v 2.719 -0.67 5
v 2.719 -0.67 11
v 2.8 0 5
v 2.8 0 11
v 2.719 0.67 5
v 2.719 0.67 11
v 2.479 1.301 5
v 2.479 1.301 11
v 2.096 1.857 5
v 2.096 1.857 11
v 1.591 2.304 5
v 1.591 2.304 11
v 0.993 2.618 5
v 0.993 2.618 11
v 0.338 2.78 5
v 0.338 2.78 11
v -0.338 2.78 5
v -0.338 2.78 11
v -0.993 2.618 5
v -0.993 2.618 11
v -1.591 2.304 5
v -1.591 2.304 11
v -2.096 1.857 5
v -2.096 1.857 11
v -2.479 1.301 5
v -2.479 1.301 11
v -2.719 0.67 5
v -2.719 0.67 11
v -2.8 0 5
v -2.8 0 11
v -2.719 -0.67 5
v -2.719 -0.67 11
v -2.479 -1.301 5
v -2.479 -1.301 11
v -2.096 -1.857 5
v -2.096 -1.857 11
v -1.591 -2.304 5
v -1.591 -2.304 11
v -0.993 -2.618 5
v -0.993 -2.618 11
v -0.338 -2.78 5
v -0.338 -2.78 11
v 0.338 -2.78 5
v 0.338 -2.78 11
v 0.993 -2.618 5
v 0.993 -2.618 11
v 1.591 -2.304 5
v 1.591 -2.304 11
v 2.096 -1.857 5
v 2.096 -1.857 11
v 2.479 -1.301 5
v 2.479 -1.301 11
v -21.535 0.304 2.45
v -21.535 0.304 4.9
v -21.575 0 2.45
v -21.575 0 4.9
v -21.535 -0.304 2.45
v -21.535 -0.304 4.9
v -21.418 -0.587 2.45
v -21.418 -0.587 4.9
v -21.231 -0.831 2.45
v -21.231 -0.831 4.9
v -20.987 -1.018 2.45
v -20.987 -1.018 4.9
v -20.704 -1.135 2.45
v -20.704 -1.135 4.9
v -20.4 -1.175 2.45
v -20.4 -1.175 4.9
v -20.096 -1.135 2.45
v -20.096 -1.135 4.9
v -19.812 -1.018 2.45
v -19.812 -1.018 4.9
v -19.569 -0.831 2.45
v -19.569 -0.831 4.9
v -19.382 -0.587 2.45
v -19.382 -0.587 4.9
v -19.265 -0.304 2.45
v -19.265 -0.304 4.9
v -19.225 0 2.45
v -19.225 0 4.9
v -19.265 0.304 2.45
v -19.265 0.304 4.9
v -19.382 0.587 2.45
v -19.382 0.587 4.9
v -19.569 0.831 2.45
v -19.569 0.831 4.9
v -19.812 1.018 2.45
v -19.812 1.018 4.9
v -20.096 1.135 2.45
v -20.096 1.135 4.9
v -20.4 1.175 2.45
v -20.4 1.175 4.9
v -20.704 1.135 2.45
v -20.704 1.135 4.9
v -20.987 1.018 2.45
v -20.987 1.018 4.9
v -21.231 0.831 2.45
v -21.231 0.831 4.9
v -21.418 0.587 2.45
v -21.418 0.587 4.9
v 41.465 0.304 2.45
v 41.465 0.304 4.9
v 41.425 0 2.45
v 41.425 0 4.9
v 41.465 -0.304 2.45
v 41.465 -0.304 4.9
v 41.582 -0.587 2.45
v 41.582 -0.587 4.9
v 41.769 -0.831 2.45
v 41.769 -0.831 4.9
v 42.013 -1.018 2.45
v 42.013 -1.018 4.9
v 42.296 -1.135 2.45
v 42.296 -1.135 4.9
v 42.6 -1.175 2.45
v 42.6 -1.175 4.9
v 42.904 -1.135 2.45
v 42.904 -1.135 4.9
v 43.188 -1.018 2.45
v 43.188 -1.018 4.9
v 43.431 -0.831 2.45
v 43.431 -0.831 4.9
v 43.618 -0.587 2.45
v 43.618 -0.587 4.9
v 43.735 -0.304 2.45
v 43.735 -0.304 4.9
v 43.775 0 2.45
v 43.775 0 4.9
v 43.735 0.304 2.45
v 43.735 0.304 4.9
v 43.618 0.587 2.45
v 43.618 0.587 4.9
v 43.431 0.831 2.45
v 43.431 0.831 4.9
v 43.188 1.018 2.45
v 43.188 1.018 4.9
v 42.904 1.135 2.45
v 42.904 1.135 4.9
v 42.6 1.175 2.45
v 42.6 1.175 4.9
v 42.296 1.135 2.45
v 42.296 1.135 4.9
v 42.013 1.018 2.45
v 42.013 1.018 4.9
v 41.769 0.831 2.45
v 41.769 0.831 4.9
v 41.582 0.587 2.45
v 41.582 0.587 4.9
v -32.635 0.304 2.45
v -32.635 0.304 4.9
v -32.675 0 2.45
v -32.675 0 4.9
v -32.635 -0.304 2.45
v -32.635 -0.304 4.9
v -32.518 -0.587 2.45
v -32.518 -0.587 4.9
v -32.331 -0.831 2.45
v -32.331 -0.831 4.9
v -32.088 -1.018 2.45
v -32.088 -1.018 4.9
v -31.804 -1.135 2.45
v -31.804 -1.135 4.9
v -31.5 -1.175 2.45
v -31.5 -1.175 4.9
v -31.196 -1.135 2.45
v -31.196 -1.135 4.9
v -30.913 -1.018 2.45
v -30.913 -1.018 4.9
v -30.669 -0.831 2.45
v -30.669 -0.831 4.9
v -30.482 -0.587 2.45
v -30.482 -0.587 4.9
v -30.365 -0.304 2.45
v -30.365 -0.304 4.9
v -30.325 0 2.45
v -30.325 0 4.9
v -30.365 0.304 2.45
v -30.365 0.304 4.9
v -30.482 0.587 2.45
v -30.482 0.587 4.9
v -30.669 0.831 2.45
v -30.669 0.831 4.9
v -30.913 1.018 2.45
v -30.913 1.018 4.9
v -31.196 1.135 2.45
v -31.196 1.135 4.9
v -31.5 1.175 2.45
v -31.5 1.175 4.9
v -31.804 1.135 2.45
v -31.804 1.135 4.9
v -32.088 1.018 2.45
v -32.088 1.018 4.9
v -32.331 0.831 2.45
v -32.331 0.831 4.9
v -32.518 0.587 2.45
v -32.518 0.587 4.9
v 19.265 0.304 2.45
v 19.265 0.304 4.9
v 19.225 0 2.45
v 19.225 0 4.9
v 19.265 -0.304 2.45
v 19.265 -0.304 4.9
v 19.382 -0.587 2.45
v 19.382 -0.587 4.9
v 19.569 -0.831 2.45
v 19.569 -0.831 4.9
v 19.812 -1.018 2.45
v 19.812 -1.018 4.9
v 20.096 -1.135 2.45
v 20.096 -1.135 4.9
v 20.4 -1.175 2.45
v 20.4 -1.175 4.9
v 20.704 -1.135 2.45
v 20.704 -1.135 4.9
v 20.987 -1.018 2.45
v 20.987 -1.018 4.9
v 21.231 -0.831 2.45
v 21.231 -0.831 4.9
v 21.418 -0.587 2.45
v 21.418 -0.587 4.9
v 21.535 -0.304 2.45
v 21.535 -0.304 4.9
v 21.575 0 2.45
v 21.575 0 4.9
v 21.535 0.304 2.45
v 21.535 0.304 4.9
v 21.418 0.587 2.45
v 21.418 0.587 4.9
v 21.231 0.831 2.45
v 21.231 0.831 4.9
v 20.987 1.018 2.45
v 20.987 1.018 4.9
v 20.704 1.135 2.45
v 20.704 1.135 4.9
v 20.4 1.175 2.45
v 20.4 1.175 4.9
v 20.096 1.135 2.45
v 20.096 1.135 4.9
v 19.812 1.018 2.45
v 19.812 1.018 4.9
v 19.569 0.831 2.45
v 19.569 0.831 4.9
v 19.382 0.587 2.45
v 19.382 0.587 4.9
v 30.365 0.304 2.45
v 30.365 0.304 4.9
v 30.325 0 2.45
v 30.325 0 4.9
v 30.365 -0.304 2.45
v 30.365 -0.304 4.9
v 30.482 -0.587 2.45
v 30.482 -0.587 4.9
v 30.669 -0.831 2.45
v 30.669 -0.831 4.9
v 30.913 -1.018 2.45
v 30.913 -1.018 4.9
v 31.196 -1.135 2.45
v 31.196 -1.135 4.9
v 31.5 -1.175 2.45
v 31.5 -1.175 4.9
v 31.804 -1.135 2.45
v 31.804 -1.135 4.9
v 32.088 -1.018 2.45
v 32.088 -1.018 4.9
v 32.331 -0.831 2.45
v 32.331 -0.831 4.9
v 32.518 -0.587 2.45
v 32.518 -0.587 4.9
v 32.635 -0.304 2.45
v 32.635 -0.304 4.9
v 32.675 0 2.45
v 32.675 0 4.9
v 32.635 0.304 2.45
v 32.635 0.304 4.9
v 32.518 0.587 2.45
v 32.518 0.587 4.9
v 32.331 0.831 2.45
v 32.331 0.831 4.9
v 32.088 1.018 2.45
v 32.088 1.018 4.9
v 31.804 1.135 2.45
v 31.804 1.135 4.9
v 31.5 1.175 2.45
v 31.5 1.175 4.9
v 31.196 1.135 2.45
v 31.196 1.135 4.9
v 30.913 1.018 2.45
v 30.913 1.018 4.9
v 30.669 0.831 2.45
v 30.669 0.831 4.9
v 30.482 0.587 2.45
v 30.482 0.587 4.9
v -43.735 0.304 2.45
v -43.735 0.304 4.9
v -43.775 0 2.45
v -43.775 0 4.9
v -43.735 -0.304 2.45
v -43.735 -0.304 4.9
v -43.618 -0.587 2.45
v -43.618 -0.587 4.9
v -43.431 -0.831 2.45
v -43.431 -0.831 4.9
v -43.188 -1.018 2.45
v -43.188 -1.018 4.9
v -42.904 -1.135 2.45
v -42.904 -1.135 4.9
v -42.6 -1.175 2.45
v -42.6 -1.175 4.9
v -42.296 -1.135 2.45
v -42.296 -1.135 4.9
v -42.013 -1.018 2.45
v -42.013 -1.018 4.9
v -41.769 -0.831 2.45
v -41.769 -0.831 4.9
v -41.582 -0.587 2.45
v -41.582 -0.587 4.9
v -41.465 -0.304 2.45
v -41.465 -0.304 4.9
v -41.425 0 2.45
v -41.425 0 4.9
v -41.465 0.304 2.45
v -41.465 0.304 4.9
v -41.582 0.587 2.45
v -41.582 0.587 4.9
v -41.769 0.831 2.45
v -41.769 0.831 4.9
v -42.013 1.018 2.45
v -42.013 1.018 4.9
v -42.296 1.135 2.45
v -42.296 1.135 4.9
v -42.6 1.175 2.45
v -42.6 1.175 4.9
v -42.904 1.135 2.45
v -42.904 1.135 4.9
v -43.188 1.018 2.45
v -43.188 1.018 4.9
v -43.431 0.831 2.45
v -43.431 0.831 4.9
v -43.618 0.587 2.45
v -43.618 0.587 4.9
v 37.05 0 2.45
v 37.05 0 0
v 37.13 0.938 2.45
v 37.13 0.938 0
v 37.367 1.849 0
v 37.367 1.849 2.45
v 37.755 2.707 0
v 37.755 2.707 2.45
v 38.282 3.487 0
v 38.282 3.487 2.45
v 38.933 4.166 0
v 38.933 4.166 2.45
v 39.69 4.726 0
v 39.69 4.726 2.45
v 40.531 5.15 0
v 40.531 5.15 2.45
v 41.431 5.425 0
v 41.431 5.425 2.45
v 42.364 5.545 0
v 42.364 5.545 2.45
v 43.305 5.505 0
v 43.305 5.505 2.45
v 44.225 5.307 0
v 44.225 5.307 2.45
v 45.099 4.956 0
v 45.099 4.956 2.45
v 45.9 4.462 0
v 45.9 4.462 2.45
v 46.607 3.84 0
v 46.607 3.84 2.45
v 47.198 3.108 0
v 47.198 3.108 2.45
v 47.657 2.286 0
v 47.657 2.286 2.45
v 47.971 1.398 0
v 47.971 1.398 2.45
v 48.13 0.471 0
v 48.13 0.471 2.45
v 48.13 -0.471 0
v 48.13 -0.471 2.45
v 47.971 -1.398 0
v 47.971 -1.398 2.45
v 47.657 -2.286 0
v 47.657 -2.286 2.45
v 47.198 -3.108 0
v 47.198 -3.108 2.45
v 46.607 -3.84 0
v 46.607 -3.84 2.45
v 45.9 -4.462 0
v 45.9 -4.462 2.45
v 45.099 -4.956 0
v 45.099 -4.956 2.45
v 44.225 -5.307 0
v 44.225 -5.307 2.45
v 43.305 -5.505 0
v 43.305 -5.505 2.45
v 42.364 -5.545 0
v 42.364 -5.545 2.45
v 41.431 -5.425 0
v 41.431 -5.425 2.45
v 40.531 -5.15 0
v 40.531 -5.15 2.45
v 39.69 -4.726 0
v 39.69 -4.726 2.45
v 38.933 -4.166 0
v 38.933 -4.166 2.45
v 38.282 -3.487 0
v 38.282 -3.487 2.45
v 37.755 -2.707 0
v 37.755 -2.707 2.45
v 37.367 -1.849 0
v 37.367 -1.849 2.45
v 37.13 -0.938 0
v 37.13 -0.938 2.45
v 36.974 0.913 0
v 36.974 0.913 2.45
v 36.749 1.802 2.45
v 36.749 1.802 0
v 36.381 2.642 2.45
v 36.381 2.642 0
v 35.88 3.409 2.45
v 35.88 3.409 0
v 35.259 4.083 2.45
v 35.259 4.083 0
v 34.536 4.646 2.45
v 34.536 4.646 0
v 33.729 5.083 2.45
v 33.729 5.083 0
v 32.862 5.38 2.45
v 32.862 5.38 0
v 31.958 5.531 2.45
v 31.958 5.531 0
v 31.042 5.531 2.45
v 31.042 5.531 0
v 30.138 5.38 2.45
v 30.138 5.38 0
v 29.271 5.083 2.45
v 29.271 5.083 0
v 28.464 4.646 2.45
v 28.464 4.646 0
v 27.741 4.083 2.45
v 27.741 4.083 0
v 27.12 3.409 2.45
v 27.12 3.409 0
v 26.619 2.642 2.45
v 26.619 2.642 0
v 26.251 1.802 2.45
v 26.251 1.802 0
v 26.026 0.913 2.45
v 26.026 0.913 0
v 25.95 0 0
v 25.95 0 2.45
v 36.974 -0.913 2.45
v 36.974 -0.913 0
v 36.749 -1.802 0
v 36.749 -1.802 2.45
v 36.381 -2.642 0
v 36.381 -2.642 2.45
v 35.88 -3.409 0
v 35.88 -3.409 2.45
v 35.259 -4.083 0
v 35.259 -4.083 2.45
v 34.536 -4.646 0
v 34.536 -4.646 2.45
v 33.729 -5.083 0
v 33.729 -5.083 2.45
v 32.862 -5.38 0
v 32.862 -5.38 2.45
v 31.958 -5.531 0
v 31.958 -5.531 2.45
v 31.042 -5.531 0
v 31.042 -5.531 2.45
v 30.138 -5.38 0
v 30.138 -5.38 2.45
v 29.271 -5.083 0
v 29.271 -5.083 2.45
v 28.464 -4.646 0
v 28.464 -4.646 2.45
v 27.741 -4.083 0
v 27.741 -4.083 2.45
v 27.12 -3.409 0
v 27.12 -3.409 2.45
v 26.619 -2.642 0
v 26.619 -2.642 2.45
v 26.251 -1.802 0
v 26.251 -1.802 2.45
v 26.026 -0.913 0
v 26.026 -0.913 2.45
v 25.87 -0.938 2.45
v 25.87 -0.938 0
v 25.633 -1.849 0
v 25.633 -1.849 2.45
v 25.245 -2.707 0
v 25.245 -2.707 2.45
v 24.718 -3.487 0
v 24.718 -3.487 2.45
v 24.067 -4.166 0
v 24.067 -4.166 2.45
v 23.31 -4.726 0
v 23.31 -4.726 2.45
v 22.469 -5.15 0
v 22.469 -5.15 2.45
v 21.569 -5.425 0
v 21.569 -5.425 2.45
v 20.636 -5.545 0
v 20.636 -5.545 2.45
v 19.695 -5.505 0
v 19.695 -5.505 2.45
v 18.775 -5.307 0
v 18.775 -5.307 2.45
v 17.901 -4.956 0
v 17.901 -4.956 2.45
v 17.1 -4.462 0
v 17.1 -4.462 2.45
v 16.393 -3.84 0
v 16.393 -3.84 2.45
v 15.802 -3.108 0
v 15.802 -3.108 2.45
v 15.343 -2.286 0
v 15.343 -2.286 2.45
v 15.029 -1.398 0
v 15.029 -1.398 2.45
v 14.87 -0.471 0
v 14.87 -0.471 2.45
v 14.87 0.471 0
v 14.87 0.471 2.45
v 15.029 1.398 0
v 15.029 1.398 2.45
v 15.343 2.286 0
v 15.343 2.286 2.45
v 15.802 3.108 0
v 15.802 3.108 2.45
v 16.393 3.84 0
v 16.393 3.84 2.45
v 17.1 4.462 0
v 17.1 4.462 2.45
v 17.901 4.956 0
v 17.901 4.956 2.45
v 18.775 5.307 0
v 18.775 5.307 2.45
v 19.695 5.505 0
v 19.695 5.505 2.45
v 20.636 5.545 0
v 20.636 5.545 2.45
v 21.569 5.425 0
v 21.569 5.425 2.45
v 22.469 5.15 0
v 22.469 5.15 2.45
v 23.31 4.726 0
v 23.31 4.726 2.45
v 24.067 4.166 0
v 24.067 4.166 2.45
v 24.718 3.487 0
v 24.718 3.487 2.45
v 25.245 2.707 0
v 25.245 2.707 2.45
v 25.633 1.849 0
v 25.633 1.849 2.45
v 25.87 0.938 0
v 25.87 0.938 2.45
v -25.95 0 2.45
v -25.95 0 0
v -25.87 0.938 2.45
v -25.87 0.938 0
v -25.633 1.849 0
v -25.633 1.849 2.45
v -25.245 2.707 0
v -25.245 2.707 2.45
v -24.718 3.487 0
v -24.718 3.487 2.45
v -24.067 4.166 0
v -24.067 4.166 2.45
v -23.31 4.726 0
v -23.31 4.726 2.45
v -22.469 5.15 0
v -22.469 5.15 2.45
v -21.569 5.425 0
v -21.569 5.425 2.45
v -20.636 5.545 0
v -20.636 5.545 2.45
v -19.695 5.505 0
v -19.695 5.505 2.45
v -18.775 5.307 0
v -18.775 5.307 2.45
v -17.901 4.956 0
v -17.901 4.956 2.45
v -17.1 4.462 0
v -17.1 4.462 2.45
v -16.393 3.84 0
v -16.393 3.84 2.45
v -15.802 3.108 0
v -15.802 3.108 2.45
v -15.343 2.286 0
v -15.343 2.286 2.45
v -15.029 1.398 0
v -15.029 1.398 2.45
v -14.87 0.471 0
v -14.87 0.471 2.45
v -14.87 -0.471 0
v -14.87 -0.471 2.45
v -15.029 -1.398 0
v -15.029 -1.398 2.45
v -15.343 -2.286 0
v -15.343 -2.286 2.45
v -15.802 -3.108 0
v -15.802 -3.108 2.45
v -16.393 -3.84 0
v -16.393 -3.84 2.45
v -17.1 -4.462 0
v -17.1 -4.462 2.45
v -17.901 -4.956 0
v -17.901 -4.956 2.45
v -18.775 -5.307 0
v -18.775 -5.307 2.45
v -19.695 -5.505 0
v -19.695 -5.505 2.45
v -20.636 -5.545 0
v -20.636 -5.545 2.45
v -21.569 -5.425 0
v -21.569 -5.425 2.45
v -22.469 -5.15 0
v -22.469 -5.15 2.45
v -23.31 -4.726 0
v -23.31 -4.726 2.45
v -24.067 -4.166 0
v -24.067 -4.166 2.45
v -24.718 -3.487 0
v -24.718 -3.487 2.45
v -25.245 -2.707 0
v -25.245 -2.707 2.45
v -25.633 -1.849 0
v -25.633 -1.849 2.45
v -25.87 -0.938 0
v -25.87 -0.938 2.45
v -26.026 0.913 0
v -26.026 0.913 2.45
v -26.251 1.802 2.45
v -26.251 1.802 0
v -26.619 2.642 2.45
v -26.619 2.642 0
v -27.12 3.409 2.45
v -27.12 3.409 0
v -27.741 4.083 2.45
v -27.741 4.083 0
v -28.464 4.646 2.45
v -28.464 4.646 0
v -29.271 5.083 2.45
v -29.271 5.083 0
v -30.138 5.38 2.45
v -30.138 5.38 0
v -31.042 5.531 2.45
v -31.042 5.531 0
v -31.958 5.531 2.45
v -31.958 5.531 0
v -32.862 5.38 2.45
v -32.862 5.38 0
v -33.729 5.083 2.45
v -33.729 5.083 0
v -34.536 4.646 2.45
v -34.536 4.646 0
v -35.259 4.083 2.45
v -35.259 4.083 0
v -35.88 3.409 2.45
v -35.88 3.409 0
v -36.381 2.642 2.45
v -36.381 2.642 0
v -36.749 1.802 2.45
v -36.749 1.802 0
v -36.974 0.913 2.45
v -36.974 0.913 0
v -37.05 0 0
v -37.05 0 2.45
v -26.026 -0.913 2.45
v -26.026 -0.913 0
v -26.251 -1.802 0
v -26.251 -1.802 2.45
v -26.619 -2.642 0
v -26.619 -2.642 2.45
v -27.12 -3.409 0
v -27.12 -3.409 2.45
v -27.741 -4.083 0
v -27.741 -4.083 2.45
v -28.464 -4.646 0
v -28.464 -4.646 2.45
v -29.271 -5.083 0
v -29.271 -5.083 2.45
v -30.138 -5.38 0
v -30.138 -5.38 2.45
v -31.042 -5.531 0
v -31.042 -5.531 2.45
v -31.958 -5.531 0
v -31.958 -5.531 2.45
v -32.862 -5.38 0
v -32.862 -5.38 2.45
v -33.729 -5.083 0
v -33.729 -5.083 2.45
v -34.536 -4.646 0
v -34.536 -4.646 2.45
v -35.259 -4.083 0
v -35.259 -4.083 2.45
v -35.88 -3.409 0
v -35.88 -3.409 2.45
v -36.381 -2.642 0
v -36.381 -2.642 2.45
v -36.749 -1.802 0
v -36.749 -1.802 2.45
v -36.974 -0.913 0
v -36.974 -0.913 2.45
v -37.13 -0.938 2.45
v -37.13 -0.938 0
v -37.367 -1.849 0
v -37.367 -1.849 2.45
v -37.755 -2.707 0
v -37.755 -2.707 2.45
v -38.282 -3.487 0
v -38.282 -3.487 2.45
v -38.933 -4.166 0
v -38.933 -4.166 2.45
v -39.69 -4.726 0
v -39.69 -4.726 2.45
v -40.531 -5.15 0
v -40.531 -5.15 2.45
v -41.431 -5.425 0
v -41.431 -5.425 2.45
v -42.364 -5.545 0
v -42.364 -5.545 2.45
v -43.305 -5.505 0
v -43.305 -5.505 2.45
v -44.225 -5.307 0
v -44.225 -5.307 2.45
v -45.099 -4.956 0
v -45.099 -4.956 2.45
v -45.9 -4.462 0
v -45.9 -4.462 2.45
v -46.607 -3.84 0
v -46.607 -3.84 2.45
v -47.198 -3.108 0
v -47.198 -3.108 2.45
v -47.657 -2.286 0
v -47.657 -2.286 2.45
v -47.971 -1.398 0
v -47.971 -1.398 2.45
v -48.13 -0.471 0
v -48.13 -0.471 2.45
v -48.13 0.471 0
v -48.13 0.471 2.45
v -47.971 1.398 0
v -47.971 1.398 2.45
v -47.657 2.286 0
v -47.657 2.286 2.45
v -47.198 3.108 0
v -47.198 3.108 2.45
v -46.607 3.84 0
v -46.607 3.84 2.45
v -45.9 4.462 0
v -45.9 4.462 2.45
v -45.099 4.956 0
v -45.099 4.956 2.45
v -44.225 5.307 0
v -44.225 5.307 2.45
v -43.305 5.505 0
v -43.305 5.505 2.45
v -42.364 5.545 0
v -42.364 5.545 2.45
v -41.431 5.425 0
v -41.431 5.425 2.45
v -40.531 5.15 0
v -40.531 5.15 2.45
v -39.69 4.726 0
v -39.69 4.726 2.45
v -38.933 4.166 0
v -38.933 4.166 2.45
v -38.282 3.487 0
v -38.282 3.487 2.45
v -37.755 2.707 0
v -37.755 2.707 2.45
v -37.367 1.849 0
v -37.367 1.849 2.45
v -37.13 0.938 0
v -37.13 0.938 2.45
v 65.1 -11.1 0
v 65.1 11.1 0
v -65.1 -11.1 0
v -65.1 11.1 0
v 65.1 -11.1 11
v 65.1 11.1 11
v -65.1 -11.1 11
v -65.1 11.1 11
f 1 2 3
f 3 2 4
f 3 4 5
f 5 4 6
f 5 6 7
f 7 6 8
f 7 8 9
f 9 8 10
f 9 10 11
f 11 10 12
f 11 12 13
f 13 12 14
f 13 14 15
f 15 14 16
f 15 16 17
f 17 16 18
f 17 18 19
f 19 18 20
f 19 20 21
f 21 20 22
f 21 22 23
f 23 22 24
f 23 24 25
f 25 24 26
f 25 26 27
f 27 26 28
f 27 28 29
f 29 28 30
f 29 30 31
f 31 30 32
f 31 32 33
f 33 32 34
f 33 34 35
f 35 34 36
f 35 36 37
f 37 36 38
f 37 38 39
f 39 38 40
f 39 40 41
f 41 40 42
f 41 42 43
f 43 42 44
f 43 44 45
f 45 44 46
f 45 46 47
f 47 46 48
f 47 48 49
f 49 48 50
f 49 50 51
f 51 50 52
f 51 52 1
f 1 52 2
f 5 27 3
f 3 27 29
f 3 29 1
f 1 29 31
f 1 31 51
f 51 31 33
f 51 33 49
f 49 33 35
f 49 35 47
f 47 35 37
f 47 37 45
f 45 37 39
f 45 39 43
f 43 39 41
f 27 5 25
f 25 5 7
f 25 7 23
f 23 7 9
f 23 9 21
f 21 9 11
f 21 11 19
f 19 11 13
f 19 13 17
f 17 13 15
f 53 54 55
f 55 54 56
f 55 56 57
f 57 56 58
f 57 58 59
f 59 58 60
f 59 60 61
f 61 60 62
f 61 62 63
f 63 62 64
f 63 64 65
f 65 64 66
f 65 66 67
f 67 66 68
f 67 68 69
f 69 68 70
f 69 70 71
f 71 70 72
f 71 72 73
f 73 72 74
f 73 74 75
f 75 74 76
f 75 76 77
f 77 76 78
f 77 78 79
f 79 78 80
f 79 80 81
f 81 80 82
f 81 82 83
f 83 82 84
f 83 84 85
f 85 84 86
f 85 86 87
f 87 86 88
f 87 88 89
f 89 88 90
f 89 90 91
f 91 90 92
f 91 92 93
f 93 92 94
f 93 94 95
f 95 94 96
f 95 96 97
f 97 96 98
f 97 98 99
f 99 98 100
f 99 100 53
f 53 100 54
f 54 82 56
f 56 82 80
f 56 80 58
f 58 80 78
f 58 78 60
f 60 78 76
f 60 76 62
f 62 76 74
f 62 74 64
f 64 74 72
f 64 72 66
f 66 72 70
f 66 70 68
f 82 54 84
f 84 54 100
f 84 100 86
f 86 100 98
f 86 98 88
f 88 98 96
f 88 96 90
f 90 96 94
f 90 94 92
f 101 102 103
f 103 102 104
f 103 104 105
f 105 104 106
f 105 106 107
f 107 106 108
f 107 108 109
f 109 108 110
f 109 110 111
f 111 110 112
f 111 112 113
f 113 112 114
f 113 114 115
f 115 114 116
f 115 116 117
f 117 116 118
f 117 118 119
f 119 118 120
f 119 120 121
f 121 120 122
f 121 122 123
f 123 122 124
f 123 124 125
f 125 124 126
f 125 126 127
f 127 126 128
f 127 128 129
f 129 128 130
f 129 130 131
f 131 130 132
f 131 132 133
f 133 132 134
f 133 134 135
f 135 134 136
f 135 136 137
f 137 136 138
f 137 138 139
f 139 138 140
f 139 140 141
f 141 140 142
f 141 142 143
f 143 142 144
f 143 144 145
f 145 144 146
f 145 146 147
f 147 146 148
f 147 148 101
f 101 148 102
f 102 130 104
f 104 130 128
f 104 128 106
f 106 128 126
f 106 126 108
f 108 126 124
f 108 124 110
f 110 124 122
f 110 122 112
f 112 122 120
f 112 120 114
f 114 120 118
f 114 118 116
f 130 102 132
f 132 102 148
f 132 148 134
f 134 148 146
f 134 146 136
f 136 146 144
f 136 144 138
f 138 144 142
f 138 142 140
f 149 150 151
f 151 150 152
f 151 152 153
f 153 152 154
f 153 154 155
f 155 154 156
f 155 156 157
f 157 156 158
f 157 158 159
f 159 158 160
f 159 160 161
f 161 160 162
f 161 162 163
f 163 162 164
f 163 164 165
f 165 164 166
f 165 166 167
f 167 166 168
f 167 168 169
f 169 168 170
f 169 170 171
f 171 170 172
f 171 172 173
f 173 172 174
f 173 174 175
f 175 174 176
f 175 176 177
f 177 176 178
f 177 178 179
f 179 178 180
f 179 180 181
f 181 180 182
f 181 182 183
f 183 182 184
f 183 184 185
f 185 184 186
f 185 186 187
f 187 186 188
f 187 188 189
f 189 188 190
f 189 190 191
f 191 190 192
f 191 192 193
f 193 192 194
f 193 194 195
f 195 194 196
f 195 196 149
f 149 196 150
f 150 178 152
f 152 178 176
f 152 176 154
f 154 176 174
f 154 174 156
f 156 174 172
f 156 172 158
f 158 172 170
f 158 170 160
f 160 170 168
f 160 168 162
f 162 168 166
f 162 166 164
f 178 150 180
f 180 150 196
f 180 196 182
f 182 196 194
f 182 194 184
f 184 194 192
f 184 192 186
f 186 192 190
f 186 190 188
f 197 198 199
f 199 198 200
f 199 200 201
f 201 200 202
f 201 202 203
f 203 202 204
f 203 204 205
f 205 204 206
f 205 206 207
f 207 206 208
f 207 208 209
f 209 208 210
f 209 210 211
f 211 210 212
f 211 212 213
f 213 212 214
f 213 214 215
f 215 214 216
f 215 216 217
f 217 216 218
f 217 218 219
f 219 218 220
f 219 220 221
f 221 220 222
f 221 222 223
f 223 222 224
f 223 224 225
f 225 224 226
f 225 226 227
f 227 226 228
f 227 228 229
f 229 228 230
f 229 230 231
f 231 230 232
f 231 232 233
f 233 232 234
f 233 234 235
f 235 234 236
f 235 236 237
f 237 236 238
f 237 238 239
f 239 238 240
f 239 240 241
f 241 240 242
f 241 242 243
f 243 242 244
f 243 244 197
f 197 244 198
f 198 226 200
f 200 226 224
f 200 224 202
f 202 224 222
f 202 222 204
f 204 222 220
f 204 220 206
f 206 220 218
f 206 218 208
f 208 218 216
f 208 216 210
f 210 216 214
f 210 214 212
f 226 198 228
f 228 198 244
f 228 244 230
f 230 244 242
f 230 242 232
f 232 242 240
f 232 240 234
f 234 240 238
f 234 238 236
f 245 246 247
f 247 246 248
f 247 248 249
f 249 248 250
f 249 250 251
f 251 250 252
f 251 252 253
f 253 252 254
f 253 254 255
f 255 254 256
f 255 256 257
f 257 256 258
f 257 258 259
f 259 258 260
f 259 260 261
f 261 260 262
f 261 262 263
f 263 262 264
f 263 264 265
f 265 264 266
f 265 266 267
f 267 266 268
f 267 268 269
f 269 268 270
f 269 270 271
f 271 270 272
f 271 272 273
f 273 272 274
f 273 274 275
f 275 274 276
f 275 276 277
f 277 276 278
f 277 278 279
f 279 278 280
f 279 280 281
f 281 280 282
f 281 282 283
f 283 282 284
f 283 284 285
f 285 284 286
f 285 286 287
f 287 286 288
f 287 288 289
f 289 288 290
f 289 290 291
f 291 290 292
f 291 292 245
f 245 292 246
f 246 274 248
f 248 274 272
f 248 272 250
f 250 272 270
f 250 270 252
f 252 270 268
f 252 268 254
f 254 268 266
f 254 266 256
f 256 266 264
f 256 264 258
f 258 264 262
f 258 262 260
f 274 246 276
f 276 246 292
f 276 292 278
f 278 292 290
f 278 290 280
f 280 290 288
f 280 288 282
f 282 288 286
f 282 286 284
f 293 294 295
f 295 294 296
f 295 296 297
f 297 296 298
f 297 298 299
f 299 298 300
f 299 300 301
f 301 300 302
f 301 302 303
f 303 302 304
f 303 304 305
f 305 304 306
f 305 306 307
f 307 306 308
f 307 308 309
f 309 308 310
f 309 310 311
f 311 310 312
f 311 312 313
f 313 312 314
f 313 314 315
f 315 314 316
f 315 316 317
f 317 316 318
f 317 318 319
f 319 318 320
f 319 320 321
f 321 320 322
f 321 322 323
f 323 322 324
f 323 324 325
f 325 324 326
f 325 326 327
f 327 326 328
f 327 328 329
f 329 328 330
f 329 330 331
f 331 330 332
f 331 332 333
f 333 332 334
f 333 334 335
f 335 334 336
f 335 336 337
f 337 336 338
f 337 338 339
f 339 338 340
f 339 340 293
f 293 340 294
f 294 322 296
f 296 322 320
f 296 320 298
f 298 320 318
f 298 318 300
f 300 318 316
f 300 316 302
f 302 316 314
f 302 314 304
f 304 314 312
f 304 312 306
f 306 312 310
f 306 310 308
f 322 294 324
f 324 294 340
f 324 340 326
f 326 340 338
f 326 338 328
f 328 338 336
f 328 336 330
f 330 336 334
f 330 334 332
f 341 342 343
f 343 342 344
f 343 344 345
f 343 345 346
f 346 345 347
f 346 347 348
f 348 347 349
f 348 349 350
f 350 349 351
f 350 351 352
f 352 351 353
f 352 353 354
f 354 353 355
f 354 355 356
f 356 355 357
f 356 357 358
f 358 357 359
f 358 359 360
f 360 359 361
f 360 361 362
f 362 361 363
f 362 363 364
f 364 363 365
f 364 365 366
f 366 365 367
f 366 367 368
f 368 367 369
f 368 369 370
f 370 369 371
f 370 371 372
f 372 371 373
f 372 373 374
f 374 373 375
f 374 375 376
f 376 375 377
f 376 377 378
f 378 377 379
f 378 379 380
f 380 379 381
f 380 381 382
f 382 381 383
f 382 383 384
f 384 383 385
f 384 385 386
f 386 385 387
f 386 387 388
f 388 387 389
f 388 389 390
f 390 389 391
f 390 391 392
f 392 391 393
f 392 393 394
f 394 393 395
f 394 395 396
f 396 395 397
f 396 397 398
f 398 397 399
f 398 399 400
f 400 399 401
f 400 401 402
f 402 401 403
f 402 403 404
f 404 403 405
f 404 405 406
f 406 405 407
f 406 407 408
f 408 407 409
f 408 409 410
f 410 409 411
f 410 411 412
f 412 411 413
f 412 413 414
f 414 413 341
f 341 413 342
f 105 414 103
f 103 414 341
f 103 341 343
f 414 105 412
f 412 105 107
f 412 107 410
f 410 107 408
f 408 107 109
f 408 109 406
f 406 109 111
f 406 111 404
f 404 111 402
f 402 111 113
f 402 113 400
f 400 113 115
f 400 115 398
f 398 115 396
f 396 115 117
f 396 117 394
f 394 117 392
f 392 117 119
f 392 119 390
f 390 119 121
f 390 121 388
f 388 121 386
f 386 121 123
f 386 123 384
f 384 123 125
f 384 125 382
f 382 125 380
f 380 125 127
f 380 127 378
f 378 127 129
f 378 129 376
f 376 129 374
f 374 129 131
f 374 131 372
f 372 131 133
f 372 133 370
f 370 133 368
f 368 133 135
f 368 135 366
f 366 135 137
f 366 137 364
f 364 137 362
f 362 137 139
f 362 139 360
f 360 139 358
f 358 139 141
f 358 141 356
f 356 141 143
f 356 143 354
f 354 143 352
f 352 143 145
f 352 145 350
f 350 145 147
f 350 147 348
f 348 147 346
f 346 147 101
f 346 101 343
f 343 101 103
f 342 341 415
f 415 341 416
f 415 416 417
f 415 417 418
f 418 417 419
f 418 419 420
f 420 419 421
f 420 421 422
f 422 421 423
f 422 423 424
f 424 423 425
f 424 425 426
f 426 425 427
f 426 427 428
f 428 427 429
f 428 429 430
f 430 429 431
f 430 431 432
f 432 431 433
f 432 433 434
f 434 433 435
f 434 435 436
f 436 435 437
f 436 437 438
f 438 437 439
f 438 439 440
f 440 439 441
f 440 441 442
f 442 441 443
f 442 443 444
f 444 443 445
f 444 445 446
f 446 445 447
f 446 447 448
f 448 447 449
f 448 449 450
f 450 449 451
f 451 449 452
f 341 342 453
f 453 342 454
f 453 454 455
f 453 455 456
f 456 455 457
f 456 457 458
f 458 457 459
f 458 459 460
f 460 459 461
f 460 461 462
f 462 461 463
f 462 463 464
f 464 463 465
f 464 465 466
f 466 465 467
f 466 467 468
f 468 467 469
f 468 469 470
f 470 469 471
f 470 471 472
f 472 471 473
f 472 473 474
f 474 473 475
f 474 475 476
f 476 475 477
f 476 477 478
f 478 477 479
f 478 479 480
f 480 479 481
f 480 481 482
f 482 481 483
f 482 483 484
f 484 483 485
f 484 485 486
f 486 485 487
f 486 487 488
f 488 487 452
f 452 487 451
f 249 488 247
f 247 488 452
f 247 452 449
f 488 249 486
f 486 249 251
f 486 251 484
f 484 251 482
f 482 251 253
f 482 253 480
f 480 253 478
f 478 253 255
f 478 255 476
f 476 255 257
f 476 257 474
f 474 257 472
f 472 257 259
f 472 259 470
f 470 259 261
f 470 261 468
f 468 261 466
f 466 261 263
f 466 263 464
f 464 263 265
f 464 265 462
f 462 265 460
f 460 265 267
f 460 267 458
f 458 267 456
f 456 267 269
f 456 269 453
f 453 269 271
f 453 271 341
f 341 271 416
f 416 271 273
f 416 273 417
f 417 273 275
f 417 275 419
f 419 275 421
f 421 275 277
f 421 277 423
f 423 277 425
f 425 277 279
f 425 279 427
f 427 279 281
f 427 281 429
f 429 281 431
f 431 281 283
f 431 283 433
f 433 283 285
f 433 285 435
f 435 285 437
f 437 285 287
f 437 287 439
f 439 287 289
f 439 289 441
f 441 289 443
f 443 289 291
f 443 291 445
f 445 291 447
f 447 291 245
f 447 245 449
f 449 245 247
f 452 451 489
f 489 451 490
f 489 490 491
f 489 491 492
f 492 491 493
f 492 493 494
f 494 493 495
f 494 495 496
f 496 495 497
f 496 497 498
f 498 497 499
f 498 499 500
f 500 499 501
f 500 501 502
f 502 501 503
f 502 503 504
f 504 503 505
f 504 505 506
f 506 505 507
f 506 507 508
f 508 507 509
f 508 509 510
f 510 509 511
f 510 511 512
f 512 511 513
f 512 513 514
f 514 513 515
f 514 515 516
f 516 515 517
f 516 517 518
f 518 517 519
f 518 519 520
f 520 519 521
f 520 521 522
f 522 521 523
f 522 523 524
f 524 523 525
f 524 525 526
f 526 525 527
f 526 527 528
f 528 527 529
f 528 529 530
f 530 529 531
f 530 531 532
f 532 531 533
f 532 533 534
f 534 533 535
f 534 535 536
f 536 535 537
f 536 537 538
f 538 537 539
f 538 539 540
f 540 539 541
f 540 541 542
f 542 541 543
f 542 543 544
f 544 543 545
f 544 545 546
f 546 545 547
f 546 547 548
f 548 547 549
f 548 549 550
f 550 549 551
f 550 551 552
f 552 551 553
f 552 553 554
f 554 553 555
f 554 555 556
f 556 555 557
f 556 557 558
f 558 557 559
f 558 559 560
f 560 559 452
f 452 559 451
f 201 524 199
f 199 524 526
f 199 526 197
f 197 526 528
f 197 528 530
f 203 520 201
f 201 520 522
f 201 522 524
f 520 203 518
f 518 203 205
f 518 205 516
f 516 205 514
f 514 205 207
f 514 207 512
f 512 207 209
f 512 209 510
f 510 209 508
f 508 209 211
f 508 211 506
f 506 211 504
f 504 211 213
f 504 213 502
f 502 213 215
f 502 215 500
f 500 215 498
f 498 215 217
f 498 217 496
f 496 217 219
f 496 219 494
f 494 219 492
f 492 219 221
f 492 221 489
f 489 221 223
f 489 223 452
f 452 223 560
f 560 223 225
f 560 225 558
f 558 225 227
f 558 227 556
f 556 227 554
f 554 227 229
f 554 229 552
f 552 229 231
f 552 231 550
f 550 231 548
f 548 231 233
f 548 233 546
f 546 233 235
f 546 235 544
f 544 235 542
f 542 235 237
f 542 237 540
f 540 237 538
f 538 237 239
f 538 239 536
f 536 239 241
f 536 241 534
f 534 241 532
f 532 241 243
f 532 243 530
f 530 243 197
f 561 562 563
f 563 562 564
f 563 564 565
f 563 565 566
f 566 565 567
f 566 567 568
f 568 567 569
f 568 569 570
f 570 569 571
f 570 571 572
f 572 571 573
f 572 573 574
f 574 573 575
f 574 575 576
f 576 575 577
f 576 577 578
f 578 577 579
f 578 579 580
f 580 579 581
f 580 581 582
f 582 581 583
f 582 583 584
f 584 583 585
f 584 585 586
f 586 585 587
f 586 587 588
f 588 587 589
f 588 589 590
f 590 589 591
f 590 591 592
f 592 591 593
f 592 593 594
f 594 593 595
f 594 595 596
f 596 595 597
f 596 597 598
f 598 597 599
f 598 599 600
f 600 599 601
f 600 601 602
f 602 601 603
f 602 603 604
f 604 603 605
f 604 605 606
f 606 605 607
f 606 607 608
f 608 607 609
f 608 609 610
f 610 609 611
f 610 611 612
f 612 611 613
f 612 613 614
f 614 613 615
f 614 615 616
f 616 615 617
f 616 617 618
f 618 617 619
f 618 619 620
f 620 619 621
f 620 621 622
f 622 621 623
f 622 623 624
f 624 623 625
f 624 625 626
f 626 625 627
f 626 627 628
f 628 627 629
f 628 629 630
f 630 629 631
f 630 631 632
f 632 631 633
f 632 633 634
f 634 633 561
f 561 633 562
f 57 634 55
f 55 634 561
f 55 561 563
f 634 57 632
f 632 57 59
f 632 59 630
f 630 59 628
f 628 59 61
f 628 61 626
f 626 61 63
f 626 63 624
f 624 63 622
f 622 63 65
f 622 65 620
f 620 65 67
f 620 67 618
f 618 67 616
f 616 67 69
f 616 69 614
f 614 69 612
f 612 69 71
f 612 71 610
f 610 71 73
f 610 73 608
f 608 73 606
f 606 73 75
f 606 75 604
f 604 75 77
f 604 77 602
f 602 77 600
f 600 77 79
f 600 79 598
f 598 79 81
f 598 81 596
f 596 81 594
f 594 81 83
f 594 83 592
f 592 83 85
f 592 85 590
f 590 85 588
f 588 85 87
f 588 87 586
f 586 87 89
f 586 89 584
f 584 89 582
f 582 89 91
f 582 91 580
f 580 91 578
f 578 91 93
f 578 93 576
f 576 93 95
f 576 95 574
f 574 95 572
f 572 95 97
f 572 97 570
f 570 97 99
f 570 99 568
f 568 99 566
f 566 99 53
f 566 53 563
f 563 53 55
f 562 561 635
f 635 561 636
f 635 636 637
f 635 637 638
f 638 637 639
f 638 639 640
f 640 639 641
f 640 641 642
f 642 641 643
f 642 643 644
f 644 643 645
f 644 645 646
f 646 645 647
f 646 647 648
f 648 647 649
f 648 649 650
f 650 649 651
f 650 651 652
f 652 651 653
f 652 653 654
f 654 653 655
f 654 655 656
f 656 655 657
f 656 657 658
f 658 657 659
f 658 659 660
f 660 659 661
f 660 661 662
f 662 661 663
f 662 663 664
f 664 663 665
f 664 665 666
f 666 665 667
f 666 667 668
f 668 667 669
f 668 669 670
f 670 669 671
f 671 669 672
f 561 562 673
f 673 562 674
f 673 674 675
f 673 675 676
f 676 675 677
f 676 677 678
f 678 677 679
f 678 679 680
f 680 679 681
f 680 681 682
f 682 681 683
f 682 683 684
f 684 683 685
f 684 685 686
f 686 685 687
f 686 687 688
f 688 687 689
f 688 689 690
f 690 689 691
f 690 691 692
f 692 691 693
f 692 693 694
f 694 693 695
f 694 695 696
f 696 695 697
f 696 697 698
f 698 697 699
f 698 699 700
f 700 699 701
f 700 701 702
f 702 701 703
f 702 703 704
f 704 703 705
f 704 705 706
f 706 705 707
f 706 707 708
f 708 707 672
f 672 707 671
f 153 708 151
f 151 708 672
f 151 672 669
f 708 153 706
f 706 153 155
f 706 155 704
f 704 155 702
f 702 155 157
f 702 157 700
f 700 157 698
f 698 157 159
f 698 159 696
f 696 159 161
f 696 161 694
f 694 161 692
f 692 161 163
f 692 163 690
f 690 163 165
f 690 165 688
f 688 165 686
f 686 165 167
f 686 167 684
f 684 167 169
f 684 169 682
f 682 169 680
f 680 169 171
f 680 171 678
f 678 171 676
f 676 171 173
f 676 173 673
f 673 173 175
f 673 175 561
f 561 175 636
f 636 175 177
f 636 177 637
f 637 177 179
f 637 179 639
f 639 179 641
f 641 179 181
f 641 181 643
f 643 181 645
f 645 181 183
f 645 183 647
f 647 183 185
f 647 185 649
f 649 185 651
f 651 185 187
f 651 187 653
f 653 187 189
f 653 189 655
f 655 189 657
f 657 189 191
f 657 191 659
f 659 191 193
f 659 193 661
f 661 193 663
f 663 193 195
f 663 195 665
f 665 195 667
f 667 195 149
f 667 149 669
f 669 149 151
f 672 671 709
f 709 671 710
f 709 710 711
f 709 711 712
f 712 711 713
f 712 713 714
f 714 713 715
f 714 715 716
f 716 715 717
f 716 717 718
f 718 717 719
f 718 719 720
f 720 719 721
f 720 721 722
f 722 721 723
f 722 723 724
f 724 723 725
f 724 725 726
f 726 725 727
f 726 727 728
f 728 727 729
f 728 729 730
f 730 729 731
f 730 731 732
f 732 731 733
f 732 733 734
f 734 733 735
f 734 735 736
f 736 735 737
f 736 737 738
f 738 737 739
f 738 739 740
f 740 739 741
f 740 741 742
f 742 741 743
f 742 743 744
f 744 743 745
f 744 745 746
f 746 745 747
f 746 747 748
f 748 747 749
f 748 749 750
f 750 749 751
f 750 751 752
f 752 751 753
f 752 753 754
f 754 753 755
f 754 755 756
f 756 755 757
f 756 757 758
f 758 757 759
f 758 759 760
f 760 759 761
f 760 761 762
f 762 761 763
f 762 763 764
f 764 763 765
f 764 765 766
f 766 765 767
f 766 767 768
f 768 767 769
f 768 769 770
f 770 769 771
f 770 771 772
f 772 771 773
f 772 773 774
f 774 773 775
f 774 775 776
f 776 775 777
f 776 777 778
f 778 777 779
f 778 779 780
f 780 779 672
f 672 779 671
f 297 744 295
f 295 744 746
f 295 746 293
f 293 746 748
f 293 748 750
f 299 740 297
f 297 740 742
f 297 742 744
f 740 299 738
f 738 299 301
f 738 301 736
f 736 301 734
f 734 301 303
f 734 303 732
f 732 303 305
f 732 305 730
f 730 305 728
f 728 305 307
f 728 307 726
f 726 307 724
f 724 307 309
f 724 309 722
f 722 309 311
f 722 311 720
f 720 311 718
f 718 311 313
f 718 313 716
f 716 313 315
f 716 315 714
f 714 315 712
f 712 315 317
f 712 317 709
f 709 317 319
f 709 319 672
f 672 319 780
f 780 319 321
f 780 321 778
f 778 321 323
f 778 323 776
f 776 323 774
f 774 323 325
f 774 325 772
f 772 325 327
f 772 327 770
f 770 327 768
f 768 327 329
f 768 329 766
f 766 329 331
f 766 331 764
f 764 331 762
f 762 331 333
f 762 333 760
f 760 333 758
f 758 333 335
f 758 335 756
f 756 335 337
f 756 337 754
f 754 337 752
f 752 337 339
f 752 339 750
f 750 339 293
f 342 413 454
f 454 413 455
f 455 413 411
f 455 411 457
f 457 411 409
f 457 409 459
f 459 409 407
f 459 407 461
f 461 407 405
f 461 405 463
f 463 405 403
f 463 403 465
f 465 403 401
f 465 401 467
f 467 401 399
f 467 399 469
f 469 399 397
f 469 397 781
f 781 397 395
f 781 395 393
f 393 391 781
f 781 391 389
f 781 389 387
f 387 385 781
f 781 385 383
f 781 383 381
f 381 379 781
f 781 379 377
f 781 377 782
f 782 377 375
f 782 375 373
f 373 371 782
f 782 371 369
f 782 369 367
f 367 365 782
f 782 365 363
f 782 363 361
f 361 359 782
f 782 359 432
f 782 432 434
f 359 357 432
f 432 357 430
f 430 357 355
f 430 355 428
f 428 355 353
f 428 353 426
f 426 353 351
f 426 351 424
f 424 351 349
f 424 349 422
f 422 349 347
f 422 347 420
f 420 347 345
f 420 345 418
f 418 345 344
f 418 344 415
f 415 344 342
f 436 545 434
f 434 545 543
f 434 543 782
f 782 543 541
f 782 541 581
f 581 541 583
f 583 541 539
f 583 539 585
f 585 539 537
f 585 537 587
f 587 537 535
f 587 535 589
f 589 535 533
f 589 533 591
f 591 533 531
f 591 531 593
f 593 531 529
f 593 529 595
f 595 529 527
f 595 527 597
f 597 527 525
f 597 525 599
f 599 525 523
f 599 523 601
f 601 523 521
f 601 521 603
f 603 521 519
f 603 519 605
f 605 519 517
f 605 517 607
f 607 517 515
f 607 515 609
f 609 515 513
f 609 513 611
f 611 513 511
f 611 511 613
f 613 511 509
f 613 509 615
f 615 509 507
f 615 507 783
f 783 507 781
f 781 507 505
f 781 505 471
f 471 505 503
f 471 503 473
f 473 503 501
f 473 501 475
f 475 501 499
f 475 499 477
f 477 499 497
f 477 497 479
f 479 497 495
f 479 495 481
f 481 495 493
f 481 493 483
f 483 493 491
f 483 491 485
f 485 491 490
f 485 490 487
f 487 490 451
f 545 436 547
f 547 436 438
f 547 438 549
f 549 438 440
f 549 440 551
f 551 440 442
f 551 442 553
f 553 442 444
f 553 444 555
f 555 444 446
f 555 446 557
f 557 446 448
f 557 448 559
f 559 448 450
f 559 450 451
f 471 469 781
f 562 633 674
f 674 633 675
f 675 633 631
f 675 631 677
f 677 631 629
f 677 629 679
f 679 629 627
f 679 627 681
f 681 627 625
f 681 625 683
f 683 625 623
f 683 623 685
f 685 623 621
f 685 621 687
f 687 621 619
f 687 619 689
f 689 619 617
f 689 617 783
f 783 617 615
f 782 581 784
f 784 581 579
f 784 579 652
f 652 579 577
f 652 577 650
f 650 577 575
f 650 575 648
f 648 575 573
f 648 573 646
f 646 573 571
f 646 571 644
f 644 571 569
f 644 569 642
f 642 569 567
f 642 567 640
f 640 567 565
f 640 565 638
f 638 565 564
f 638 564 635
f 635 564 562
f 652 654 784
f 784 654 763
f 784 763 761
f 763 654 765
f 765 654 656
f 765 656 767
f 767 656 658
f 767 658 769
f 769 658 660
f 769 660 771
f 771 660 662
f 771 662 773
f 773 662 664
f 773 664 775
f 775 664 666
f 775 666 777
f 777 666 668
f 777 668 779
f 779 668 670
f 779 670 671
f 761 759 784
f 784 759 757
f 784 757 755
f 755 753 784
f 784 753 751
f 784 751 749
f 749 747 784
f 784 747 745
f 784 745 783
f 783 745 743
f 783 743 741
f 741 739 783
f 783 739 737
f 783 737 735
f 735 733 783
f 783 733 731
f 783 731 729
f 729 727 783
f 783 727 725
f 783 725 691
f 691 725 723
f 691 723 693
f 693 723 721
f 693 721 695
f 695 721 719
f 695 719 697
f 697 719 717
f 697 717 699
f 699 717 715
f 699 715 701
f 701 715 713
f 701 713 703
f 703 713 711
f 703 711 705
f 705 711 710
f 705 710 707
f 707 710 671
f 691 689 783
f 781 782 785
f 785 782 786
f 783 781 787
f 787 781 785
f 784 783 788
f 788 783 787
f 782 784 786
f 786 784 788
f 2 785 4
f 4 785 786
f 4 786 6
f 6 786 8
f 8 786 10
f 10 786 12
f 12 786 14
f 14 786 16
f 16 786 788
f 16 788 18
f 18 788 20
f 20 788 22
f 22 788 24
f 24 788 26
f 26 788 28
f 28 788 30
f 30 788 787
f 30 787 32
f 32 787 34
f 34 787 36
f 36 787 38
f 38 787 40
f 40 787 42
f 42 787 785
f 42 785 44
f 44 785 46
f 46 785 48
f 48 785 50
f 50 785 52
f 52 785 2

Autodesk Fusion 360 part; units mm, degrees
sketch "Boceto1" plane through (0, 0, 0) normal (0, 0, 1) x (1, 0, 0)
  line L0 (65.1, -11.1) -> (-65.1, -11.1)
  line L1 (-65.1, -11.1) -> (-65.1, 11.1)
  line L2 (-65.1, 11.1) -> (65.1, 11.1)
  line L3 (65.1, 11.1) -> (65.1, -11.1)
  line L4 (65.1, -11.1) -> (-65.1, 11.1) construction
  line L5 (-65.1, -11.1) -> (65.1, 11.1) construction
  line L6 (0, 11.1) -> (0, -11.1) construction
  line L7 (-65.1, 0) -> (65.1, 0) construction
  circle A0 centre (20.4, 0) radius 5.55
  circle A1 centre (20.4, 0) radius 1.175
  circle A2 centre (-20.4, 0) radius 5.55
  circle A3 centre (-20.4, 0) radius 1.175
  circle A4 centre (31.5, 0) radius 5.55
  circle A5 centre (31.5, 0) radius 1.175
  circle A6 centre (-31.5, 0) radius 5.55
  circle A7 centre (-31.5, 0) radius 1.175
  circle A8 centre (42.6, 0) radius 5.55
  circle A9 centre (42.6, 0) radius 1.175
  circle A10 centre (-42.6, 0) radius 1.175
  circle A11 centre (-42.6, 0) radius 5.55
  dimension "d9" = 22.2
  dimension "d14" = 11.1
  dimension "d15" = 2.35
  dimension "d16" = 20.4
  dimension "d17" = 11.1
  dimension "d18" = 2.35
  dimension "d19" = 31.5
  dimension "d20" = 11.1
  dimension "d21" = 2.35
  dimension "d22" = 42.6
  dimension "d23" = 22.5
extrude "Extruir1" add sketch "Boceto1" along normal blind 11 contours L0 L1 L2 L3 | A0 | A8 | A4 | A1 | A2 | A11 | A6 | A3 | A5 | A7 | A9 | A10
extrude "Extruir2" cut sketch "Boceto1" along normal blind 2.45 contours A0 | A8 | A4 | A2 | A11 | A6
extrude "Extruir3" cut sketch "Boceto1" along normal blind 4.9 contours A1 | A3 | A5 | A7 | A9 | A10
sketch "Boceto2" plane through (0, 0, 11) normal (0, 0, 1) x (-1, 0, 0)
  line L0 (-65.1, -11.1) -> (65.1, -11.1)
  line L1 (65.1, -11.1) -> (65.1, 11.1)
  line L2 (65.1, 11.1) -> (-65.1, 11.1)
  line L3 (-65.1, 11.1) -> (-65.1, -11.1)
  line L4 (65.1, 0) -> (-65.1, 0) construction
  line L5 (0, 11.1) -> (0, -11.1) construction
  circle A0 centre (0, 0) radius 2.8
  dimension "d31" = 5.6
extrude "Extruir4" cut sketch "Boceto2" against normal blind 6 contours A0
equation "grosor1 = 2.8 mm"
equation "grosor2 = 2 mm"
equation "grosor3 = 7.5 mm"
equation "tolerancia = 0.1 mm"
equation "diametro_grande_iman = 11 mm"
equation "diametro_pequeno_iman = 2.25 mm"
equation "altura_grande_iman = 2.45 mm"
equation "altura_pequena_iman = 2.45 mm"
equation "d9 = 18 mm + tolerancia * 2 + grosor2 * 2"
equation "DIP_pequena = 41 mm"
equation "DIP_media = 63 mm"
equation "d14 = diametro_grande_iman + tolerancia"
equation "d15 = diametro_pequeno_iman + tolerancia"
equation "d16 = ( DIP_media - ( ( diametro_grande_iman + tolerancia ) * 2 ) ) / 2"
equation "d17 = diametro_grande_iman + tolerancia"
equation "d18 = diametro_pequeno_iman + tolerancia"
equation "d19 = DIP_media / 2"
equation "d20 = diametro_grande_iman + tolerancia"
equation "d21 = diametro_pequeno_iman + tolerancia"
equation "d22 = ( DIP_media + ( ( diametro_grande_iman + tolerancia ) * 2 ) ) / 2"
equation "grosor4 = 11 mm"
equation "d27 = altura_grande_iman"
equation "d29 = altura_pequena_iman + altura_grande_iman"
equation "d31 = 5.5 mm + tolerancia"
